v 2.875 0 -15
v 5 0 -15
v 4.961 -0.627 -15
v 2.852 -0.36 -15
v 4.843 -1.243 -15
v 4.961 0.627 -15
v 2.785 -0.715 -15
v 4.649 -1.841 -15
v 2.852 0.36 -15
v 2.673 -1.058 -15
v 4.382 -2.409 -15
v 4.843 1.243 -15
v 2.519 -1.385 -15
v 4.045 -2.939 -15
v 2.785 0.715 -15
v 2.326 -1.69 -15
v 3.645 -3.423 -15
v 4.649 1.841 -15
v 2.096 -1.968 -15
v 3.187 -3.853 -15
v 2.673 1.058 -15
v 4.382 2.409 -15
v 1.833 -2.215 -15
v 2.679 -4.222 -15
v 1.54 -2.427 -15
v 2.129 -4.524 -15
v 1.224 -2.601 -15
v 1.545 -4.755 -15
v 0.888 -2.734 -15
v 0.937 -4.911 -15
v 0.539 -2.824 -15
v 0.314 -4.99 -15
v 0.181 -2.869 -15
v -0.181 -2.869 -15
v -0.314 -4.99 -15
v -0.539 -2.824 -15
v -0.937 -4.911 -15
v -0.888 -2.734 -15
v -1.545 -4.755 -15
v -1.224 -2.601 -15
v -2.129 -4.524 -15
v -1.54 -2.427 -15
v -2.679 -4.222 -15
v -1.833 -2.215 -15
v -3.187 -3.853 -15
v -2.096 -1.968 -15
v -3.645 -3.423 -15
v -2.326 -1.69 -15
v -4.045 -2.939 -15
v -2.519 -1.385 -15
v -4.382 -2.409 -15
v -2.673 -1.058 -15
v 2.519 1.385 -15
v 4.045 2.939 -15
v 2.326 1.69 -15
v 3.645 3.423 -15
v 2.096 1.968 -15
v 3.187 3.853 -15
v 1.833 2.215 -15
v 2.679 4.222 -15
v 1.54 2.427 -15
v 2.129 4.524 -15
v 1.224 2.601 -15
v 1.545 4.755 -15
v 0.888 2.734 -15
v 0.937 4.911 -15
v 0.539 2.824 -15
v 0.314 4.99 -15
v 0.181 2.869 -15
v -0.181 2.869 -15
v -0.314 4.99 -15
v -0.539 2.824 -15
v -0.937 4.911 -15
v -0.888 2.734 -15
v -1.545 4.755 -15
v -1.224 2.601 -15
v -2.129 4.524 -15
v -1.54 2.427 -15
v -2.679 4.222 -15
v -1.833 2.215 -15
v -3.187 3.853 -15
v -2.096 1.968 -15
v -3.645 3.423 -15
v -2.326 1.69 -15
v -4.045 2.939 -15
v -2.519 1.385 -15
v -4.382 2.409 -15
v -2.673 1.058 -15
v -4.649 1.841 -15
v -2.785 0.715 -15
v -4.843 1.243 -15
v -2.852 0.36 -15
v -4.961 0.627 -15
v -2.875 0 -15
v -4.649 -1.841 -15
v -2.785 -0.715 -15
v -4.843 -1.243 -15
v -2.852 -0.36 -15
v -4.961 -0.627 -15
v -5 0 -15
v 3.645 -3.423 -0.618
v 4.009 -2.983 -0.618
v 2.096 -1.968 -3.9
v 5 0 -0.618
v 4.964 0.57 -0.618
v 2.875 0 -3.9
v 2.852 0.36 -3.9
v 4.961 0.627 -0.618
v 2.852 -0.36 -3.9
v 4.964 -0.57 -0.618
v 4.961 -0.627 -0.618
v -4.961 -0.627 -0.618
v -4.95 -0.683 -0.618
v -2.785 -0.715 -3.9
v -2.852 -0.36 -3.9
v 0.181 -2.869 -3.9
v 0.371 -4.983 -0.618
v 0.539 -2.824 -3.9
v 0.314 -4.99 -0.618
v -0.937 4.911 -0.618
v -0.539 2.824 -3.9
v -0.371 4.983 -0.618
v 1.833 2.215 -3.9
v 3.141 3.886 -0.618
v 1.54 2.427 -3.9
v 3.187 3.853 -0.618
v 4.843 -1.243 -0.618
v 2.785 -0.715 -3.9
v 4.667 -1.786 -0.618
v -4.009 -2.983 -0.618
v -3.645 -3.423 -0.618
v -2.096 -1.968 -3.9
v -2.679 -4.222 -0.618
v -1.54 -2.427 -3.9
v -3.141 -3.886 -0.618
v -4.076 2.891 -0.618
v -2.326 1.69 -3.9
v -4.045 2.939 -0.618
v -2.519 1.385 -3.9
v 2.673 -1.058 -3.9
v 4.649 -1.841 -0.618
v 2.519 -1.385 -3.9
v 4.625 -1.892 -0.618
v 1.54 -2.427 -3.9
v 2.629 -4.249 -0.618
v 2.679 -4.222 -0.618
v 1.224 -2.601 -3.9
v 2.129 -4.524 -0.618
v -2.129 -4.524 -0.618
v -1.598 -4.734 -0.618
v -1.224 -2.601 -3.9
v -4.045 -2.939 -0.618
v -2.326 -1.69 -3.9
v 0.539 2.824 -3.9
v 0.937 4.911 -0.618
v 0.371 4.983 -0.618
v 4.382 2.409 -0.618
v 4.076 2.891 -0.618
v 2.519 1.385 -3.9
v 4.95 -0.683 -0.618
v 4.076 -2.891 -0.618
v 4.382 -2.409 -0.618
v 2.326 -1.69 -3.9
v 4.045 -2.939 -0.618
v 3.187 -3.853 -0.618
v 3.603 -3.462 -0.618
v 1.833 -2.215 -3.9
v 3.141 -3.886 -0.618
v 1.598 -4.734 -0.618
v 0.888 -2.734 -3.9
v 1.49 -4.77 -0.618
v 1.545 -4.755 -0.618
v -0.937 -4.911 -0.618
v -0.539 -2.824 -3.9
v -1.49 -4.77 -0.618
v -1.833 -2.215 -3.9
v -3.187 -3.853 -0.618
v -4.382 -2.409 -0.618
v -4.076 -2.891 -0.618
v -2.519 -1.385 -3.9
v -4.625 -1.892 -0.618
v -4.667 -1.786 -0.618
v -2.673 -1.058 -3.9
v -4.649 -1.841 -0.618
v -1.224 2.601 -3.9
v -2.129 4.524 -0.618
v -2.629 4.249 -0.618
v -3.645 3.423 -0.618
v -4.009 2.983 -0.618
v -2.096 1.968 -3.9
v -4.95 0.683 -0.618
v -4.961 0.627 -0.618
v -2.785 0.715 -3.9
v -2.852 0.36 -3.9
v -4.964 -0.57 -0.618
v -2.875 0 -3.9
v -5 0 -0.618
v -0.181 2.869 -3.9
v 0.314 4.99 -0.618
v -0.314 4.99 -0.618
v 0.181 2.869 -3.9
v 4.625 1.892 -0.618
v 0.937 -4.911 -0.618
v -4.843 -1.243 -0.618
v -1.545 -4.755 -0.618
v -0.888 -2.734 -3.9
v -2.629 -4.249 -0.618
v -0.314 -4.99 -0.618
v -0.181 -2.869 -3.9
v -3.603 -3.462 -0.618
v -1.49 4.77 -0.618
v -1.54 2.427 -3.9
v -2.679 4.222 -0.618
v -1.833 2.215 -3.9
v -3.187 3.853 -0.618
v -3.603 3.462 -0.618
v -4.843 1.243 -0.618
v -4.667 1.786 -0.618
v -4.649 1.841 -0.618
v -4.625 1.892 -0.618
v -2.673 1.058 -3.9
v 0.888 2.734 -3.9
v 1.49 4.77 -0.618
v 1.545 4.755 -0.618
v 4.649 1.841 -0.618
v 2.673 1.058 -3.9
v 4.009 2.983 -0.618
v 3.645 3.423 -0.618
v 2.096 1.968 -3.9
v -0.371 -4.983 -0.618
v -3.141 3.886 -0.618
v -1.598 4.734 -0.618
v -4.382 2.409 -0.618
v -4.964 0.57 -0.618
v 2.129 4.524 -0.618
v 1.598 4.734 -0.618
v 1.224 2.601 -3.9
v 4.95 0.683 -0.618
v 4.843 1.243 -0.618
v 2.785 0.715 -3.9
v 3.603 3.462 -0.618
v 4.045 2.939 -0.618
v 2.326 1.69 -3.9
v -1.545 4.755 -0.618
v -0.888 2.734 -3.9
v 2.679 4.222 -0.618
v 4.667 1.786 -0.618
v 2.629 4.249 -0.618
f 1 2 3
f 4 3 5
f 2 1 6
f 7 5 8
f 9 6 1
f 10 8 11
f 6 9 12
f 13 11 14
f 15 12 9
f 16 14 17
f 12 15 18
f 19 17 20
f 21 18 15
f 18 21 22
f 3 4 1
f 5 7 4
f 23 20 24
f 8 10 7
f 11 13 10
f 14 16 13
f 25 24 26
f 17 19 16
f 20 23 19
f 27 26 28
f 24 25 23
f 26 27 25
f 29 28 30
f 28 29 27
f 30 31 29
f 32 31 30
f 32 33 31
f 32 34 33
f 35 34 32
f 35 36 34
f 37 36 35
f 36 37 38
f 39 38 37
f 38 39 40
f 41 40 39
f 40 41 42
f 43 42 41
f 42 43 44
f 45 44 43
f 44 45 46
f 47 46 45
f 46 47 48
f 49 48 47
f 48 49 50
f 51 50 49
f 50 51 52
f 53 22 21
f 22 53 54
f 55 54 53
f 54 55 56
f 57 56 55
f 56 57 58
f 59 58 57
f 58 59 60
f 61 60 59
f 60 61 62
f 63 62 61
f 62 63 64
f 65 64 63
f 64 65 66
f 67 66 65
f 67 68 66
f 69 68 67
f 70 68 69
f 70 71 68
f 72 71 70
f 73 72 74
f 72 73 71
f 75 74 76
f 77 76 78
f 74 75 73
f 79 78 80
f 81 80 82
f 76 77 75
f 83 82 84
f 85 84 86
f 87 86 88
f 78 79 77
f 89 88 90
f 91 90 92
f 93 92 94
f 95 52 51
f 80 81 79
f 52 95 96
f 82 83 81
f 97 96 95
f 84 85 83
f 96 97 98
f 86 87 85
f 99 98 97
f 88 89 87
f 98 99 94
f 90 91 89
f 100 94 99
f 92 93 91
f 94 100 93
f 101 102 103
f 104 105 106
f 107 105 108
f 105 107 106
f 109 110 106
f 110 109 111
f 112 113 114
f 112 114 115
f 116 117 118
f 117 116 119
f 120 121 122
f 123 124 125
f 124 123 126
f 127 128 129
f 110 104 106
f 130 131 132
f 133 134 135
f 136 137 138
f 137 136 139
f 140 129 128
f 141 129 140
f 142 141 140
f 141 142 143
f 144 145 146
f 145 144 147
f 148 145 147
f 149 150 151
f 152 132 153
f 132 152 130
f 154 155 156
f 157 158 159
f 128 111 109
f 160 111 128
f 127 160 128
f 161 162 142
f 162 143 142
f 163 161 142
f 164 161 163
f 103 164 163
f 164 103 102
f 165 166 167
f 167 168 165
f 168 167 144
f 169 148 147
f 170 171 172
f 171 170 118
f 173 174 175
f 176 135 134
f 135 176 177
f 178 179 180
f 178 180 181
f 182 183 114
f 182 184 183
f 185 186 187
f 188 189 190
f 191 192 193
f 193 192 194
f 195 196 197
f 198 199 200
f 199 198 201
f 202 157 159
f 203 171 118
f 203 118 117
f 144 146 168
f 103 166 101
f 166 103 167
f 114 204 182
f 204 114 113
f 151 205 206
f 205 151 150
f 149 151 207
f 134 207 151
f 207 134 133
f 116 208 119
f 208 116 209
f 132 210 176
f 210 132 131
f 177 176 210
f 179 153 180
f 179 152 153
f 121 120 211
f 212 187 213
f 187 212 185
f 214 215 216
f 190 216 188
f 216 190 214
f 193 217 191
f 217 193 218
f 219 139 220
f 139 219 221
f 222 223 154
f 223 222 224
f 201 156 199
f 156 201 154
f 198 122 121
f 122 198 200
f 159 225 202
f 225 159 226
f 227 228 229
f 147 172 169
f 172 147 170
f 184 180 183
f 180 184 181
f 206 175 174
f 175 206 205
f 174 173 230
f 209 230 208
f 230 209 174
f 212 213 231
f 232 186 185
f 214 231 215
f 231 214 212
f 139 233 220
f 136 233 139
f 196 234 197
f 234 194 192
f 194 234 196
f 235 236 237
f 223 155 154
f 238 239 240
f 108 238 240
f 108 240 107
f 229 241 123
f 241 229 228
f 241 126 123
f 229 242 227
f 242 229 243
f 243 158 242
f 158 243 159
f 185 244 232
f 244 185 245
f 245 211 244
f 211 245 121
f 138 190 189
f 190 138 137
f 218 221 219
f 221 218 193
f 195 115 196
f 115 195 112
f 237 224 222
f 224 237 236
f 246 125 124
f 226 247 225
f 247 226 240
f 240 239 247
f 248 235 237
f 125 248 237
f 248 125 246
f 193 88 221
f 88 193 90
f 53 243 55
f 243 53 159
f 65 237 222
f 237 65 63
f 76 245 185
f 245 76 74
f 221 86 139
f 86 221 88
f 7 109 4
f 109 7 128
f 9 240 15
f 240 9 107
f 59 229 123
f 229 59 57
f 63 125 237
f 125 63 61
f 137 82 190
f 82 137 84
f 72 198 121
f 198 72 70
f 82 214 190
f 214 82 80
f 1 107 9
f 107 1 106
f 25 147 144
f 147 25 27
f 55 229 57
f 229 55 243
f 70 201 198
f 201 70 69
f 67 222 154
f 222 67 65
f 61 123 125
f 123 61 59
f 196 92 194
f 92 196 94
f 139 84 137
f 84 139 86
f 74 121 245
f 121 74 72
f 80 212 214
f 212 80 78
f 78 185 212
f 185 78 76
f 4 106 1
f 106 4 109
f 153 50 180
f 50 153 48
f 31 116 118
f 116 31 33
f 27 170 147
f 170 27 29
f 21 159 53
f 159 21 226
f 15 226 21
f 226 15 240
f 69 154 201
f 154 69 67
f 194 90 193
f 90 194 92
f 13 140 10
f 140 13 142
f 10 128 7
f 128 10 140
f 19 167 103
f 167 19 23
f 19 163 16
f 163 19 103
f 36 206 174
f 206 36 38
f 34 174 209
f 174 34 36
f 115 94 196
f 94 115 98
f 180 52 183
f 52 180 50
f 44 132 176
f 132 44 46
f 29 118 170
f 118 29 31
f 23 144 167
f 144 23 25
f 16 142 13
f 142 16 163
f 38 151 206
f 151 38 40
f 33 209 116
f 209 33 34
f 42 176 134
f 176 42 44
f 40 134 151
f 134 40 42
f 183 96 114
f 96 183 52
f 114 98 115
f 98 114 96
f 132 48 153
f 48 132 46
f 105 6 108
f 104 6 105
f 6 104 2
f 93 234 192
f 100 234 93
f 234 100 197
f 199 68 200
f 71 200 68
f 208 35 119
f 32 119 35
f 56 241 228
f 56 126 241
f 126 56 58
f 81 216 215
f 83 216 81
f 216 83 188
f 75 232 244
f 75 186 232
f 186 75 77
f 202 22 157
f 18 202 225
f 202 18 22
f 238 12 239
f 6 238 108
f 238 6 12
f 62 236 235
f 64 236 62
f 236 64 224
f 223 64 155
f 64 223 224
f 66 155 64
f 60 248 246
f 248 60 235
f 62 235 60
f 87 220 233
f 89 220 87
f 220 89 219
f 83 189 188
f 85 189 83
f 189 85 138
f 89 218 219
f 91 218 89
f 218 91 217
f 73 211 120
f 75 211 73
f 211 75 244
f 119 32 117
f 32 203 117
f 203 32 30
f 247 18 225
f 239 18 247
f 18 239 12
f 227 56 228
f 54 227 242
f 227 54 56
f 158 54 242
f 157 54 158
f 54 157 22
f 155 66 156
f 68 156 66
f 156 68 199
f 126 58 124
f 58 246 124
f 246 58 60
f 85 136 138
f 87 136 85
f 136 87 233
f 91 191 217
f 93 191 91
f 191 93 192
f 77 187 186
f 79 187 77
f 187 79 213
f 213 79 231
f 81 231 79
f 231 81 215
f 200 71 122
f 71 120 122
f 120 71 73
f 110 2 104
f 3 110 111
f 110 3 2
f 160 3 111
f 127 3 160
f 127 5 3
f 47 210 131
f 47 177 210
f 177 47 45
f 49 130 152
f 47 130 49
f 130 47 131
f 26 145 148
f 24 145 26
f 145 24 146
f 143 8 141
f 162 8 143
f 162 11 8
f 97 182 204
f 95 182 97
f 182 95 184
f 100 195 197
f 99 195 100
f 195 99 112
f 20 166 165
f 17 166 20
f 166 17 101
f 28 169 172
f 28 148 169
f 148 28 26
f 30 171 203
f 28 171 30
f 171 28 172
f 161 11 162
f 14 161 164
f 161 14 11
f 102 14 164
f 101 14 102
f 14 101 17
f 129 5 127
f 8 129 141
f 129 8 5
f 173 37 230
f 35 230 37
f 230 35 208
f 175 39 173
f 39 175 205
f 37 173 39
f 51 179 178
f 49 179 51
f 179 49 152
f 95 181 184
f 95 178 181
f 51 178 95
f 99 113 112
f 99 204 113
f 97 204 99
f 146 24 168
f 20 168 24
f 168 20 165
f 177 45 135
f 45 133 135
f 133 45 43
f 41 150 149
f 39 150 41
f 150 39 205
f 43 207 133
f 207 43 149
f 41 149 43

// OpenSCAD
$fn = 50;


difference() {
	union() {
		translate(v = [0, 0, -15.0000000000]) {
			cylinder(h = 15, r = 5.0000000000);
		}
		cylinder(h = 0, r = 8.0000000000);
	}
	union() {
		translate(v = [0, 0, 0]) {
			rotate(a = [0, 0, 0]) {
				difference() {
					union() {
						#translate(v = [0, 0, -15.0000000000]) {
							cylinder(h = 15, r = 2.6000000000);
						}
						#translate(v = [0, 0, -3.9000000000]) {
							cylinder(h = 3.9000000000, r = 5.0000000000, r1 = 2.8750000000, r2 = 5.4000000000);
						}
						#translate(v = [0, 0, -15.0000000000]) {
							cylinder(h = 15, r = 2.8750000000);
						}
						#translate(v = [0, 0, -15.0000000000]) {
							cylinder(h = 15, r = 2.6000000000);
						}
					}
					union();
				}
			}
		}
	}
}
